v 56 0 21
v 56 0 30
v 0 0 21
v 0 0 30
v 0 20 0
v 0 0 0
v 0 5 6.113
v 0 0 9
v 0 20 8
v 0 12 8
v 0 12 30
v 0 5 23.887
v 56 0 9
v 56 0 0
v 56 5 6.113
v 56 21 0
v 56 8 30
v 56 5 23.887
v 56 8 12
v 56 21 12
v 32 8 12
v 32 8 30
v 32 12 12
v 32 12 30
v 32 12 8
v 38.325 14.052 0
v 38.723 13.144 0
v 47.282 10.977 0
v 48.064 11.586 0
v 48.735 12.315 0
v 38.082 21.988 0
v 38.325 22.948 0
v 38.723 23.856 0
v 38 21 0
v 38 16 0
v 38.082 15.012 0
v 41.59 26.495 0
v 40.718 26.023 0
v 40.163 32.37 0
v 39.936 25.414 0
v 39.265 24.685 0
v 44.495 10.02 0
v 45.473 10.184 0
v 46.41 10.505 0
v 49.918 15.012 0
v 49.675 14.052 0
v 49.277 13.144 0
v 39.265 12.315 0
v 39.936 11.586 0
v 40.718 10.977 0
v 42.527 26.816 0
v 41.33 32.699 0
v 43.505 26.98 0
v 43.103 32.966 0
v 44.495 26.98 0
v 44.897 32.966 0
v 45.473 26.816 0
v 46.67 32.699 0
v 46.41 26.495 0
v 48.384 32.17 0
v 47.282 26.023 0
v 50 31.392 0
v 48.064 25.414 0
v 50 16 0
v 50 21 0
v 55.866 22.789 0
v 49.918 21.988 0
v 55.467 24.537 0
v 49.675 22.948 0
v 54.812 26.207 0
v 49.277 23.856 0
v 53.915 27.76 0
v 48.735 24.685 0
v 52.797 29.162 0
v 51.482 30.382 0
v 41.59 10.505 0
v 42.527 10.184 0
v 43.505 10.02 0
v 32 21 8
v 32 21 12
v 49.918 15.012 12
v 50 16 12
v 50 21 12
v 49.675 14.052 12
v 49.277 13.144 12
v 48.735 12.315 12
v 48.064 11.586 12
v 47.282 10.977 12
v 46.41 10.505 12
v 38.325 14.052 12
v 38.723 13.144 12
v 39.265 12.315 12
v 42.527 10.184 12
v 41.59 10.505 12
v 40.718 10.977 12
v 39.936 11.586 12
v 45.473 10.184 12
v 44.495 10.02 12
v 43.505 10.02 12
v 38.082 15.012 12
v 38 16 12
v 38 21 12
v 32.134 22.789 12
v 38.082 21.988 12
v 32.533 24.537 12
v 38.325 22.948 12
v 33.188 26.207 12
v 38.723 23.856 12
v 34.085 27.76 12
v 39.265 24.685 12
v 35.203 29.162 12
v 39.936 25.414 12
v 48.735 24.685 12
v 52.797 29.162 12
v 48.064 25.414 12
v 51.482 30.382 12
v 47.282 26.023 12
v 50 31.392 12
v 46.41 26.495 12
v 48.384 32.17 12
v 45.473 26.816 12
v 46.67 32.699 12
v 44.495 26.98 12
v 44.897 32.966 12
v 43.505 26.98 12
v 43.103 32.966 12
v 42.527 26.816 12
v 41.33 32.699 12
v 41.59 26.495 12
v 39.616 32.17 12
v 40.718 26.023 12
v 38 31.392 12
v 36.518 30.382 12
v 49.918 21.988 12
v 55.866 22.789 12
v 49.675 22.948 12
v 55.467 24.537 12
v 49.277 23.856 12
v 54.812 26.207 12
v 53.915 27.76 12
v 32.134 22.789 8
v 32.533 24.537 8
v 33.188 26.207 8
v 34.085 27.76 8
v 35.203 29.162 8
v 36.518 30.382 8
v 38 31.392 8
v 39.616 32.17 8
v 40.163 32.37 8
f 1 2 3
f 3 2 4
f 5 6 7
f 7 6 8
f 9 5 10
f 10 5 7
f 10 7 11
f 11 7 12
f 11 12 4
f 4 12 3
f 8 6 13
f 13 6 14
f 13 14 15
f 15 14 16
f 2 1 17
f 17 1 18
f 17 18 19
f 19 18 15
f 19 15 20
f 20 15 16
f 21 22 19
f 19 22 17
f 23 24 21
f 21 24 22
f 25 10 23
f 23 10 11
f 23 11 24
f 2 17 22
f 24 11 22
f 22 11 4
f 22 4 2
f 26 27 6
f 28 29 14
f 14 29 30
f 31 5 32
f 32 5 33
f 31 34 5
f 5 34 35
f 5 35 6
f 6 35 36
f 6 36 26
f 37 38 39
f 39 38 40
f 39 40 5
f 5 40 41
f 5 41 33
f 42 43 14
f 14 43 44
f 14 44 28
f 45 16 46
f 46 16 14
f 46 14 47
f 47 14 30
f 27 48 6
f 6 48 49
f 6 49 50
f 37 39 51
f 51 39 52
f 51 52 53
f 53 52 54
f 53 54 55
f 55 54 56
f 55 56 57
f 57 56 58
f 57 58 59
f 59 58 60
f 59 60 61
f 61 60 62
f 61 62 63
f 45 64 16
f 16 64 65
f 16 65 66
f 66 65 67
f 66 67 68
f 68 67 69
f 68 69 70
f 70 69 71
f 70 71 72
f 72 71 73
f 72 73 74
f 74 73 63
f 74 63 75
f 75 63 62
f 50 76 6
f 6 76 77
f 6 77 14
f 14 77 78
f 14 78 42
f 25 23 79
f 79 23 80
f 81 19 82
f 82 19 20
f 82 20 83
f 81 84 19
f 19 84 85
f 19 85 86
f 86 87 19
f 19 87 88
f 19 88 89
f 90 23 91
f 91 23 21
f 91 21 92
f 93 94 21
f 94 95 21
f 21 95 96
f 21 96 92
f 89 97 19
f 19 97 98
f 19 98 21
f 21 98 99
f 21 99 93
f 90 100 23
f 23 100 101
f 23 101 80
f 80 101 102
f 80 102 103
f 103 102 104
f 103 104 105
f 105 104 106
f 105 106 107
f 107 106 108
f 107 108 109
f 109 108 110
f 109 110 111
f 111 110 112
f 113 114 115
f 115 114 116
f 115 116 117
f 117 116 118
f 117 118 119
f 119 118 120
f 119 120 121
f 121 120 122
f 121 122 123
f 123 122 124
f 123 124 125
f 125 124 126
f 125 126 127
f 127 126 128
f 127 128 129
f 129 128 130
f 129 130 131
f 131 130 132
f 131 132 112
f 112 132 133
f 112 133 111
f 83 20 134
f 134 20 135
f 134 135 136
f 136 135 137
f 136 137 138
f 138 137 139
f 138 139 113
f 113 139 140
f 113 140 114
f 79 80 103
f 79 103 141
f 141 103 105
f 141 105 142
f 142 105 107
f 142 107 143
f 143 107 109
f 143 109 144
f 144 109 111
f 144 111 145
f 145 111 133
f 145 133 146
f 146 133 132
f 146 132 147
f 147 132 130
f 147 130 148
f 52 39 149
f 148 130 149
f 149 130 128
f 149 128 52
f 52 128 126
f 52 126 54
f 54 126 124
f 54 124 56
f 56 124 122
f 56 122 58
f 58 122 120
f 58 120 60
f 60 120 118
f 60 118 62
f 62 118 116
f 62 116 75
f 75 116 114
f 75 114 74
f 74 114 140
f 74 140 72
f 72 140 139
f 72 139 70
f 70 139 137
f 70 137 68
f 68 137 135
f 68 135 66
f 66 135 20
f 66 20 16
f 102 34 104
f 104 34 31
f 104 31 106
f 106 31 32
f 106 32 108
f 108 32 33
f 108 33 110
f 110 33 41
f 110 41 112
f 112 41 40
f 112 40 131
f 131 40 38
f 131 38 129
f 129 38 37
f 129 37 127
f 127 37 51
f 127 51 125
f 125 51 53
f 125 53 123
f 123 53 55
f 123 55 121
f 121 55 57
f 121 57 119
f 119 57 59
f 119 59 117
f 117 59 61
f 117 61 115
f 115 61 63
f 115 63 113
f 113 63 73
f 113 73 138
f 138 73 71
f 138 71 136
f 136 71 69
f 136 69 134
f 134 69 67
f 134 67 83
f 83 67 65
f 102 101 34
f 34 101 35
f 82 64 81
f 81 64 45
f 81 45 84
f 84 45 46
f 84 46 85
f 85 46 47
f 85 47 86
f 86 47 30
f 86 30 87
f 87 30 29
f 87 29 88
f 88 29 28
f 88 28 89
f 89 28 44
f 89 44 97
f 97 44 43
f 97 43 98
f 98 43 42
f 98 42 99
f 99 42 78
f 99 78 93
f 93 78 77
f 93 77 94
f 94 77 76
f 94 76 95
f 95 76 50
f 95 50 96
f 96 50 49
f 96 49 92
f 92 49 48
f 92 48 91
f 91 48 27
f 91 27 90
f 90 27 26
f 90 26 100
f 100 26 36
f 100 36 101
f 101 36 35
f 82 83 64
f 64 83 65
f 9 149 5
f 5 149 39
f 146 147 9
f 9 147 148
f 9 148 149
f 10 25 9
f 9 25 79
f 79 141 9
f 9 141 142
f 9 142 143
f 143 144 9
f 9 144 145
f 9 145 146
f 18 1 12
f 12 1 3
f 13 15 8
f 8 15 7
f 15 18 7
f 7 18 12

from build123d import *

# Parameters (mm, degrees)
BOSS_EXTRUDE1_DEPTH     = 30
BOSS_EXTRUDE2_DEPTH     = 12
BOSS_EXTRUDE3_DEPTH     = 8
CUT_EXTRUDE1_DEPTH      = 72.589105316
CUT_EXTRUDE1_DEPTH_BACK = 72.589105316


with BuildPart() as part:
    # Sketch2 → Boss-Extrude1 (new body)
    with BuildSketch(Plane.XY):
        Polygon((0, 0), (56, 0), (56, 8), (32, 8), (32, 12), (0, 12), align=None)
    extrude(amount=BOSS_EXTRUDE1_DEPTH)

    # Sketch3 → Boss-Extrude2 (add)
    with BuildSketch(Plane.XY):
        with BuildLine():
            Line((32, 8), (32, 21))
            ThreePointArc((32, 21), (44, 33), (56, 21))
            Line((56, 21), (56, 8))
            Line((56, 8), (32, 8))
        make_face()
        with BuildLine():
            Line((50, 21), (50, 16))
            ThreePointArc((50, 16), (44, 10), (38, 16))
            Line((38, 16), (38, 21))
            ThreePointArc((38, 21), (44, 27), (50, 21))
        make_face(mode=Mode.SUBTRACT)
    extrude(amount=BOSS_EXTRUDE2_DEPTH)

    # Sketch4 → Boss-Extrude3 (add)
    with BuildSketch(Plane.XY):
        with BuildLine():
            Line((0, 20), (0, 12))
            Line((0, 12), (32, 12))
            Line((32, 12), (32, 21))
            ThreePointArc((32, 21), (34.251977355, 27.998289399), (40.162675751, 32.369913923))
            Line((40.162675751, 32.369913923), (0, 20))
        make_face()
    extrude(amount=BOSS_EXTRUDE3_DEPTH)

    # Sketch5 → Cut-Extrude1 (cut, two sides: drawn at the far end of the back side and taken through both)
    with BuildSketch(Plane.ZY.offset(-CUT_EXTRUDE1_DEPTH_BACK)):
        Polygon((9, 0), (21, 0), (23.886751346, 5), (6.113248654, 5), align=None)
    extrude(amount=CUT_EXTRUDE1_DEPTH + CUT_EXTRUDE1_DEPTH_BACK, mode=Mode.SUBTRACT)


solid = part.part
